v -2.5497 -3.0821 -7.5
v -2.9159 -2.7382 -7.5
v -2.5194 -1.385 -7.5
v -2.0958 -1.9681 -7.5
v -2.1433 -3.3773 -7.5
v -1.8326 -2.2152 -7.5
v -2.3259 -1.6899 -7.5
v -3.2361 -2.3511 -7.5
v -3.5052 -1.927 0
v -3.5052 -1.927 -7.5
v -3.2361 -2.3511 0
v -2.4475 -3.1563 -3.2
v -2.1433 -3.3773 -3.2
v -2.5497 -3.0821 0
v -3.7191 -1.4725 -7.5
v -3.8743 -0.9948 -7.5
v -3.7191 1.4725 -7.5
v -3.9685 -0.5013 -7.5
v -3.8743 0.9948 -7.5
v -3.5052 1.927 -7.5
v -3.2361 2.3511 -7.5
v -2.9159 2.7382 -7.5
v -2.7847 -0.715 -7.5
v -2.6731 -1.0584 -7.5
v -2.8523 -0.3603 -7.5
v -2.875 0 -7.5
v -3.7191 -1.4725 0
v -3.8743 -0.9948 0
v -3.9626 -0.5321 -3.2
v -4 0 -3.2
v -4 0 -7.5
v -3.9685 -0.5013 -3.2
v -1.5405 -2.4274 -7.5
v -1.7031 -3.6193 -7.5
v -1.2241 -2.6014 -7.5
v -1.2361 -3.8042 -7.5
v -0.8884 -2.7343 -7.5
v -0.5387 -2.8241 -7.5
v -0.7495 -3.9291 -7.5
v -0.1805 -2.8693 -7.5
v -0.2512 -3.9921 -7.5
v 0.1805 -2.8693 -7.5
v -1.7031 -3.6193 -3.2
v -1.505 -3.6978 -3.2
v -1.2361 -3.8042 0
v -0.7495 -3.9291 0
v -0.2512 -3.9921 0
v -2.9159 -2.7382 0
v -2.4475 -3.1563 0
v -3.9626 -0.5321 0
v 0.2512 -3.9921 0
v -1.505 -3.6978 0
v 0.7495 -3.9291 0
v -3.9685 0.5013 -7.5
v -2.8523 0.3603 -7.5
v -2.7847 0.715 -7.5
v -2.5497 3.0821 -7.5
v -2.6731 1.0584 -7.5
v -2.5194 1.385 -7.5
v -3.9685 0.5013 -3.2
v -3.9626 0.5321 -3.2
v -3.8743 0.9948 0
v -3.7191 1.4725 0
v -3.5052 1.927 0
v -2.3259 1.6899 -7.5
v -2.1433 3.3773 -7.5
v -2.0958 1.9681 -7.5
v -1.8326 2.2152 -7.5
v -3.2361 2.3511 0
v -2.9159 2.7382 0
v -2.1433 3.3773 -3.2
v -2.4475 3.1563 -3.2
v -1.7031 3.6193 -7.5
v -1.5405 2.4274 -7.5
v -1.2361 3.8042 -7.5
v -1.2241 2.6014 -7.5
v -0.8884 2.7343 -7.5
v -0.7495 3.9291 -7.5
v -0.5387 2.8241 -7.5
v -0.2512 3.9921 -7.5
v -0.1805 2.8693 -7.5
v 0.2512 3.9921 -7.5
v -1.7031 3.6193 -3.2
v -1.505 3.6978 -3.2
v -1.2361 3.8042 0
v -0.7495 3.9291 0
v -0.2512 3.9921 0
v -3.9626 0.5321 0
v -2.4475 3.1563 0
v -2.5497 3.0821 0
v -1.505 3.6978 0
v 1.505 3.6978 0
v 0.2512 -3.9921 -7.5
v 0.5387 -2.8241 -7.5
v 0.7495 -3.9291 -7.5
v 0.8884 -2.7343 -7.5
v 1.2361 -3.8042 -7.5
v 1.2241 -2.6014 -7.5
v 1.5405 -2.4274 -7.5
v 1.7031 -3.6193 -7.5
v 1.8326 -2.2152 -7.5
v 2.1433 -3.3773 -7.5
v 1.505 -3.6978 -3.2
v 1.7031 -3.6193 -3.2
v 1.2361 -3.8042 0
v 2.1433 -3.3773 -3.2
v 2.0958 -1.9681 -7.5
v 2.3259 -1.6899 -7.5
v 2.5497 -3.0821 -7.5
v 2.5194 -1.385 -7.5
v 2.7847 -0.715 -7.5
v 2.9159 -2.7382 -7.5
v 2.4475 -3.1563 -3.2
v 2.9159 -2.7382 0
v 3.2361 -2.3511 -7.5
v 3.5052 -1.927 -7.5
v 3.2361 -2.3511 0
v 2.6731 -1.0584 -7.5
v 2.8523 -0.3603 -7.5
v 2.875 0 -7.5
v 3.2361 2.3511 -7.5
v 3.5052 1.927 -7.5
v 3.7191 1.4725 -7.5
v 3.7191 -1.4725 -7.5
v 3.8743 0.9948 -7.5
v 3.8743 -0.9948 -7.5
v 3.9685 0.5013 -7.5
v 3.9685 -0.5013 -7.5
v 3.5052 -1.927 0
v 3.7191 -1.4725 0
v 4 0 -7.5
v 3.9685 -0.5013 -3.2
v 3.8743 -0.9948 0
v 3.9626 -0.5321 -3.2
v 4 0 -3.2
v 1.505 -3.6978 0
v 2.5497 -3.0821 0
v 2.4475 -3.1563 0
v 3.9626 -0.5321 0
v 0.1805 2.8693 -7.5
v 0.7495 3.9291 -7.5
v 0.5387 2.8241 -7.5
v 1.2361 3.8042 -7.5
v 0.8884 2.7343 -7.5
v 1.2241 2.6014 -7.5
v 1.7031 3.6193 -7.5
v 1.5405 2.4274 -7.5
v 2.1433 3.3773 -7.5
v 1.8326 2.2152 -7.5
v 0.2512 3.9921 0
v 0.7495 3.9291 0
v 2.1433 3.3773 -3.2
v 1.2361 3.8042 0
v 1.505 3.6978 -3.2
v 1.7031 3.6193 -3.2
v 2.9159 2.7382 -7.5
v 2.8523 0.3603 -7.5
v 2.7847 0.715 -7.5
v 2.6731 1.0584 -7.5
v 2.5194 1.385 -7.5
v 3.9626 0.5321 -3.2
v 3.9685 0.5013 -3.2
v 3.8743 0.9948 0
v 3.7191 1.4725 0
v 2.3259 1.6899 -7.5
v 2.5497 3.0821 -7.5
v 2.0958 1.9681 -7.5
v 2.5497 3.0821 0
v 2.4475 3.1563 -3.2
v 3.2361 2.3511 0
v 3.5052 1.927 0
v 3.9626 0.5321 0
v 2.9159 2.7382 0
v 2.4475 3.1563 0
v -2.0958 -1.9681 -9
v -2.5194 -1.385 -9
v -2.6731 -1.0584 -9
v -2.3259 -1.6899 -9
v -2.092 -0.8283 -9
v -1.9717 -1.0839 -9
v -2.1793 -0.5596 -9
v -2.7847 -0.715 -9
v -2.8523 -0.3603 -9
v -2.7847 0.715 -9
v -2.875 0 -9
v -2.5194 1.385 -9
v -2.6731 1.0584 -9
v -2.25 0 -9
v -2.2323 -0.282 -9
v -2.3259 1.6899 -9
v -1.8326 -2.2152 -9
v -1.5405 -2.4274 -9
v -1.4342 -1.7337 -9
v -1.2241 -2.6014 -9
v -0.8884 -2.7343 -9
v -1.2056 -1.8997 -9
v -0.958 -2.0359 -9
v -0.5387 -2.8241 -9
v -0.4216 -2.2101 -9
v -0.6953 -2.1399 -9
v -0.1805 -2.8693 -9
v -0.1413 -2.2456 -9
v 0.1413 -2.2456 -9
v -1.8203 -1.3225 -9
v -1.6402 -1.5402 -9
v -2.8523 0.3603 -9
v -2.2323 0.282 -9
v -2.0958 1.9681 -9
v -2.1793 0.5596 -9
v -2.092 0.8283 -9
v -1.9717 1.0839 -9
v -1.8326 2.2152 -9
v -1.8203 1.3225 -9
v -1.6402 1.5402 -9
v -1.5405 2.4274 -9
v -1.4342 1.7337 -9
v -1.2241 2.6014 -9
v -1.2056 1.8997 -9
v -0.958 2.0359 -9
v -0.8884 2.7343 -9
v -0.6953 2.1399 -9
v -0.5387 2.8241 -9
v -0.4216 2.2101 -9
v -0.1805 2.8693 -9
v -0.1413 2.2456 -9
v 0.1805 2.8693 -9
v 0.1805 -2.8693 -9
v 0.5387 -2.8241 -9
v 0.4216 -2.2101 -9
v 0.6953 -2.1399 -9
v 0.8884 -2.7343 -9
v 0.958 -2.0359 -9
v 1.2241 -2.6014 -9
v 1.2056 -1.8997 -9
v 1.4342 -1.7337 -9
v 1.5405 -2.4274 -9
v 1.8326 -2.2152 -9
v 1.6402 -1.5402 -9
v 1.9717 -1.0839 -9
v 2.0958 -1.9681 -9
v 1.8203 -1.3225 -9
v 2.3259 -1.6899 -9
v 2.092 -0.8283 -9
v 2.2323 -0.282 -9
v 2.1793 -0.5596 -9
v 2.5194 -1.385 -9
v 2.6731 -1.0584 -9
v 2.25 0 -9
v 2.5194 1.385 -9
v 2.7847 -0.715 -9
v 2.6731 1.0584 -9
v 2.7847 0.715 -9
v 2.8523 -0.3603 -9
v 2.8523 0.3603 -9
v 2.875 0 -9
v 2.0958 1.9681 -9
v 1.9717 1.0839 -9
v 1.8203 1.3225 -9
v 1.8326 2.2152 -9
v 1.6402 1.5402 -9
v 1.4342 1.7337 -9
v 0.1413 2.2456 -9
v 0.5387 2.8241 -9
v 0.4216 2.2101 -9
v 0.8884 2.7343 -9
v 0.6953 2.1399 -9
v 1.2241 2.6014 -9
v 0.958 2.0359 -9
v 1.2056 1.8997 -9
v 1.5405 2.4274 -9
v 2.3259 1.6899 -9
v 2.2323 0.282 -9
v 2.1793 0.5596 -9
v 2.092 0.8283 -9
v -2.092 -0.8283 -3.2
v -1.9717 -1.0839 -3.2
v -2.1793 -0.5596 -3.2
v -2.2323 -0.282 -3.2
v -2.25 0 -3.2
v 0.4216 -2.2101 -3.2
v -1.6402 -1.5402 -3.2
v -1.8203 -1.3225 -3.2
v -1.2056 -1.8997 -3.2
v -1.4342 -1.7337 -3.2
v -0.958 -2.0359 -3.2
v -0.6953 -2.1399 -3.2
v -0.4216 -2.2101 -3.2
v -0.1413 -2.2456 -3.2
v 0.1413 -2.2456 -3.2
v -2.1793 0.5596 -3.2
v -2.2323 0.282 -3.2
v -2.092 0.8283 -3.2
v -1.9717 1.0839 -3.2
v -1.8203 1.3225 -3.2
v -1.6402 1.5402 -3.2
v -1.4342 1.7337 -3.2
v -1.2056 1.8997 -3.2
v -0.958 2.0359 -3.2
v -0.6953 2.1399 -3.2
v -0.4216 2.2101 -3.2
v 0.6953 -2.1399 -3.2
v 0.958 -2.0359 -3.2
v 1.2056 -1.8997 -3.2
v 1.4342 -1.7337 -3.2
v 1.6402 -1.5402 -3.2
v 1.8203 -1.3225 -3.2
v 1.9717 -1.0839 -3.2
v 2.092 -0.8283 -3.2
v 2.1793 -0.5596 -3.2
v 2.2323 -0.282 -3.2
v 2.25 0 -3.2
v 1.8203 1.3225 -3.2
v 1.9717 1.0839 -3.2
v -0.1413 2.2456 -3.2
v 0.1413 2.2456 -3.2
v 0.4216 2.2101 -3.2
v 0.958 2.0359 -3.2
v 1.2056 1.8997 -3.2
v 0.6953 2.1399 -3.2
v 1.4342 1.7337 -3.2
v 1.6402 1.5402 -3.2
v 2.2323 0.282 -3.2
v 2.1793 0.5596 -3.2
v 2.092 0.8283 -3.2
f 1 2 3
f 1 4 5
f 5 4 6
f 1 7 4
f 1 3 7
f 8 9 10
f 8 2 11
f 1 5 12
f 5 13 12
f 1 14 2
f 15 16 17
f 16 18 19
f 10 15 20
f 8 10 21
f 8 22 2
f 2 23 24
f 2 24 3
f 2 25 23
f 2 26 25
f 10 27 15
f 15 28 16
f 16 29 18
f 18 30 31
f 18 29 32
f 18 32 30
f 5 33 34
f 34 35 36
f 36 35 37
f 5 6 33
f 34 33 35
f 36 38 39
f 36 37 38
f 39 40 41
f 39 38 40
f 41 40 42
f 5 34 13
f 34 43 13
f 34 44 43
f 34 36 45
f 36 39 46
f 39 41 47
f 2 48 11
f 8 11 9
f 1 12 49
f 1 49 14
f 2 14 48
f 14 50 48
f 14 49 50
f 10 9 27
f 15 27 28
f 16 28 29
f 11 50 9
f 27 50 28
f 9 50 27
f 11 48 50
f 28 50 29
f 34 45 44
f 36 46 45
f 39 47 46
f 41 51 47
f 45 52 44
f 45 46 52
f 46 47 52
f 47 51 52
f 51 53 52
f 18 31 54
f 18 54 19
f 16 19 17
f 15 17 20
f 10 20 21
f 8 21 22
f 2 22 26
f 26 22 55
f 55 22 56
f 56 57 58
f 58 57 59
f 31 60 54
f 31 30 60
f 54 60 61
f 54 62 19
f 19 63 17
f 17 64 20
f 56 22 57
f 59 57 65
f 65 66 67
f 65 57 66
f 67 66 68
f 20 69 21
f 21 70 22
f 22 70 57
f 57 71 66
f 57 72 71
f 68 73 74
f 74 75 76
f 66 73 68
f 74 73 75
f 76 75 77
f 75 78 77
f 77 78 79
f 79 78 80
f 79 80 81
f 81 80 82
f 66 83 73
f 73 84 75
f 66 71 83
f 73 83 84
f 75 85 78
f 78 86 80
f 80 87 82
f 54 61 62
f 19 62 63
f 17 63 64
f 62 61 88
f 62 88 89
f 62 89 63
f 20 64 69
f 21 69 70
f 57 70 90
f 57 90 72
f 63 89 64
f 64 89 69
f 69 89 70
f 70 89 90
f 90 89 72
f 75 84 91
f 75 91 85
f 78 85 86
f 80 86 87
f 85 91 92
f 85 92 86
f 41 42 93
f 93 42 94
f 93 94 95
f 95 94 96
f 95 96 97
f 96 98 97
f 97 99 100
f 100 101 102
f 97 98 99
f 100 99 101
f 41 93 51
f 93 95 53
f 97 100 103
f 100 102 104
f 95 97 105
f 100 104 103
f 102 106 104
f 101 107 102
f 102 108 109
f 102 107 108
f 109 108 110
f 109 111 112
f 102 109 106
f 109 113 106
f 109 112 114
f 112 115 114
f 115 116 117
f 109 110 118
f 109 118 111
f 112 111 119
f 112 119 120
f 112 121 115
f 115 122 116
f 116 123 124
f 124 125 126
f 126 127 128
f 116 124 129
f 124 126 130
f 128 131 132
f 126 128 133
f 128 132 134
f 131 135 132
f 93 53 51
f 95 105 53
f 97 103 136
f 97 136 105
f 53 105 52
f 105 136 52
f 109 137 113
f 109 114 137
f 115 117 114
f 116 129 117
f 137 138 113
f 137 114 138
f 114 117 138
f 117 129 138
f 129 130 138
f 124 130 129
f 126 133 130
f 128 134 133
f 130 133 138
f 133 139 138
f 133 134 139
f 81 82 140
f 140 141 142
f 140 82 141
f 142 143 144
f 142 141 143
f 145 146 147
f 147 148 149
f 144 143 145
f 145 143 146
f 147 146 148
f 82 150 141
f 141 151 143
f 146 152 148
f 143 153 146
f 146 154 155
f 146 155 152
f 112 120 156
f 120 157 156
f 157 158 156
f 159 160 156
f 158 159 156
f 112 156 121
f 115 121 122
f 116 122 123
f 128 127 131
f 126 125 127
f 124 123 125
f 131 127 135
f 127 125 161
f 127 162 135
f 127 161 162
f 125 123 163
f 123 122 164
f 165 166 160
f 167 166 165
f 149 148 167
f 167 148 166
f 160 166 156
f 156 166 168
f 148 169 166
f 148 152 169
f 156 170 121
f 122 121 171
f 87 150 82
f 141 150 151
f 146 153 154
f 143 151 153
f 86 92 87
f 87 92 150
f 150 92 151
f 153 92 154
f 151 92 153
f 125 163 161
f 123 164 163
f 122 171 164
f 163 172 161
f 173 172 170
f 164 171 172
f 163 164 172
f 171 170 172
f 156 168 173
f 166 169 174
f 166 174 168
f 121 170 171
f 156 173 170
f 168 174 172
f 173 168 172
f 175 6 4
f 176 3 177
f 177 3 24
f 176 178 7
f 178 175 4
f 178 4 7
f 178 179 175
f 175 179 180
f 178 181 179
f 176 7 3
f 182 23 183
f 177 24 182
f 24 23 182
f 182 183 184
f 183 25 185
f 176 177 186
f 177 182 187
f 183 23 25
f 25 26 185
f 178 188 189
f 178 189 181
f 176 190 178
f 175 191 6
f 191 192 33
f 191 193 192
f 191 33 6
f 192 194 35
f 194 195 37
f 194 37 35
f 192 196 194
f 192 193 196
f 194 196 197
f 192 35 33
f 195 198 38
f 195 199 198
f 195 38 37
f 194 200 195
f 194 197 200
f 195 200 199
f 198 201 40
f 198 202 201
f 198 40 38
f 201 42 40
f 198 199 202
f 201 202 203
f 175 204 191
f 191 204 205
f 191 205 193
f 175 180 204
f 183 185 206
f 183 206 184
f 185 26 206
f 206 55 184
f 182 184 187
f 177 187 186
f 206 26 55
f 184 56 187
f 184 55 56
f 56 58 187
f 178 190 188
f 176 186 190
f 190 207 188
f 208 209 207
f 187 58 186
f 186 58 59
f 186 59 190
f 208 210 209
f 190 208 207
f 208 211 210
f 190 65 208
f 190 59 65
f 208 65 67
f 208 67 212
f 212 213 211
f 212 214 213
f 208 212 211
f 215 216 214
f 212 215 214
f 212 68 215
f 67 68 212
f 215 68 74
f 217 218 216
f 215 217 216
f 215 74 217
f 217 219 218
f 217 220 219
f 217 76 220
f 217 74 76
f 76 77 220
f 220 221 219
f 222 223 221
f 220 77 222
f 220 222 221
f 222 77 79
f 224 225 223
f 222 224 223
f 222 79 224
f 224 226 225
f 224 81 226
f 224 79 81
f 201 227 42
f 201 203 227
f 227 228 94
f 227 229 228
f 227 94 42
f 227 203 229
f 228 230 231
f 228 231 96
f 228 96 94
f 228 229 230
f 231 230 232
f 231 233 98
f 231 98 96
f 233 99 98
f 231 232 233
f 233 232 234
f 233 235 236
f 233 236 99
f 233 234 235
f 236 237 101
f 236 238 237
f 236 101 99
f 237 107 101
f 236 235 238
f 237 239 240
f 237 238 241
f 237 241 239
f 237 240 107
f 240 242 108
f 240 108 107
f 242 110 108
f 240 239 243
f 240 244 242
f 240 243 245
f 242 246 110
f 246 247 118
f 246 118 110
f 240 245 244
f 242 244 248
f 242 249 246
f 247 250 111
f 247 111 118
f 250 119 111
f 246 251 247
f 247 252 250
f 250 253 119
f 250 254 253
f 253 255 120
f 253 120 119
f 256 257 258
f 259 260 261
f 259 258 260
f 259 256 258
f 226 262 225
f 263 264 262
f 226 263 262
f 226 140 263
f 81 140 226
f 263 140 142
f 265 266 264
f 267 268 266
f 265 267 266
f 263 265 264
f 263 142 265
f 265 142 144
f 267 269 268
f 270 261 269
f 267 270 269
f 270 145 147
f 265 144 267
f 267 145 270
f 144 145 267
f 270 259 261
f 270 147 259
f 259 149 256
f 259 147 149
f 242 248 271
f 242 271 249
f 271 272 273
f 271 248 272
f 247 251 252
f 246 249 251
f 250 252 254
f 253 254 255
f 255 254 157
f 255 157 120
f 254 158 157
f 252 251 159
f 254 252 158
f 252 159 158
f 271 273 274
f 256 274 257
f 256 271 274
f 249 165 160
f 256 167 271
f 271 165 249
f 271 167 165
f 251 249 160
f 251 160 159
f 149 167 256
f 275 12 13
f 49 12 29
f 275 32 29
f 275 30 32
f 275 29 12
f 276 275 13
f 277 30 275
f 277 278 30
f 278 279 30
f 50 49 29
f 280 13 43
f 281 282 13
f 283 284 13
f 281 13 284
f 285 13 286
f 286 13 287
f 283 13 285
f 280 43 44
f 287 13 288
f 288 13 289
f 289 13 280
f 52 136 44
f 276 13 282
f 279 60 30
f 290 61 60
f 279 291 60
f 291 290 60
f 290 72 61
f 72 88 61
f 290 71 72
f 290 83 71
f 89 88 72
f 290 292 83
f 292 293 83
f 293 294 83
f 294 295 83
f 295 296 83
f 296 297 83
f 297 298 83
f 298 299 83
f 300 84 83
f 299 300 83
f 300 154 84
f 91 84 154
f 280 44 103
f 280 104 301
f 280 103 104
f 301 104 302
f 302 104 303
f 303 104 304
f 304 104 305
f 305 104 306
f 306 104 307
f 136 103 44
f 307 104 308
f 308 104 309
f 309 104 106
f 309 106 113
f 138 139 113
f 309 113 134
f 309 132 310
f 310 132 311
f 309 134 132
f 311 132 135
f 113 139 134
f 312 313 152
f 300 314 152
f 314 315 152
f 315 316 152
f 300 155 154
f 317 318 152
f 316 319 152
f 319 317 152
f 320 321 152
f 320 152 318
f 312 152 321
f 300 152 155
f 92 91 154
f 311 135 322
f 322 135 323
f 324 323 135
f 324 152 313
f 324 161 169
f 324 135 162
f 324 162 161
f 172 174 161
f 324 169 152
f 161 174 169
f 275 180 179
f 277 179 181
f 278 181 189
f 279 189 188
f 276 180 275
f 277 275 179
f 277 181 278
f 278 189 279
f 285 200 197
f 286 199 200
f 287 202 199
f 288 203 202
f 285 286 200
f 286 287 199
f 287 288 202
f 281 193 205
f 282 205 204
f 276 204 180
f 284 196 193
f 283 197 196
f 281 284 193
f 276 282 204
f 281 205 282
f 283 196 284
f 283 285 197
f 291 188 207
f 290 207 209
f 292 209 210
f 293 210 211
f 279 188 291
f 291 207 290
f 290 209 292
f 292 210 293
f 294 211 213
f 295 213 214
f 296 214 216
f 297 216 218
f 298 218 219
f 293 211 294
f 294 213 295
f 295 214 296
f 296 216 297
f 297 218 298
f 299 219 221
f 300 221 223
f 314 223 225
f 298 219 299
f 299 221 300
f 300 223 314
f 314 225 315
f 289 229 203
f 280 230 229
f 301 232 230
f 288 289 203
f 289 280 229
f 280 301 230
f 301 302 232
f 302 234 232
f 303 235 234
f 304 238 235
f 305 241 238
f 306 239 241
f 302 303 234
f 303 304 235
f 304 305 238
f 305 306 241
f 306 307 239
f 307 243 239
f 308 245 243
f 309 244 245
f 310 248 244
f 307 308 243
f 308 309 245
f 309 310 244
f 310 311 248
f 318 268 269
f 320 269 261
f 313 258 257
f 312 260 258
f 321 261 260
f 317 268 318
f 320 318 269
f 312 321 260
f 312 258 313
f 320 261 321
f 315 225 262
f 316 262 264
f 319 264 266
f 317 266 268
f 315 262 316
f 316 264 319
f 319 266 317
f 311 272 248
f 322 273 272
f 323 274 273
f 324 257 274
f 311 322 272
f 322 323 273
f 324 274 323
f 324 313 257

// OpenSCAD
$fn = 50;

difference() {
	union() {
		translate(v = [0, 0, -7.5]) {
			cylinder(h = 7.5, r = 4.0);
		}
		#translate(v = [0, 0, -9.0]) {
			cylinder(h = 9, r = 2.875);
		}
	}
	union() {
		translate(v = [0, 0, 0]) {
			rotate(a = [0, 0, 0]) {
				difference() {
					union() {
						translate(v = [0, 0, -3.2]) {
							linear_extrude(height = 3.2) {
								polygon(points = [[4.2698, 0.0], [2.1349000000000005, 3.697755269078796], [-2.134899999999999, 3.6977552690787965], [-4.2698, 5.228996902999369e-16], [-2.134900000000002, -3.6977552690787956], [2.1348999999999974, -3.697755269078798]]);
							}
						}
					}
					union();
				}
			}
		}
		#translate(v = [0, 0, -100.0]) {
			cylinder(h = 200, r = 2.25);
		}
	}
}
